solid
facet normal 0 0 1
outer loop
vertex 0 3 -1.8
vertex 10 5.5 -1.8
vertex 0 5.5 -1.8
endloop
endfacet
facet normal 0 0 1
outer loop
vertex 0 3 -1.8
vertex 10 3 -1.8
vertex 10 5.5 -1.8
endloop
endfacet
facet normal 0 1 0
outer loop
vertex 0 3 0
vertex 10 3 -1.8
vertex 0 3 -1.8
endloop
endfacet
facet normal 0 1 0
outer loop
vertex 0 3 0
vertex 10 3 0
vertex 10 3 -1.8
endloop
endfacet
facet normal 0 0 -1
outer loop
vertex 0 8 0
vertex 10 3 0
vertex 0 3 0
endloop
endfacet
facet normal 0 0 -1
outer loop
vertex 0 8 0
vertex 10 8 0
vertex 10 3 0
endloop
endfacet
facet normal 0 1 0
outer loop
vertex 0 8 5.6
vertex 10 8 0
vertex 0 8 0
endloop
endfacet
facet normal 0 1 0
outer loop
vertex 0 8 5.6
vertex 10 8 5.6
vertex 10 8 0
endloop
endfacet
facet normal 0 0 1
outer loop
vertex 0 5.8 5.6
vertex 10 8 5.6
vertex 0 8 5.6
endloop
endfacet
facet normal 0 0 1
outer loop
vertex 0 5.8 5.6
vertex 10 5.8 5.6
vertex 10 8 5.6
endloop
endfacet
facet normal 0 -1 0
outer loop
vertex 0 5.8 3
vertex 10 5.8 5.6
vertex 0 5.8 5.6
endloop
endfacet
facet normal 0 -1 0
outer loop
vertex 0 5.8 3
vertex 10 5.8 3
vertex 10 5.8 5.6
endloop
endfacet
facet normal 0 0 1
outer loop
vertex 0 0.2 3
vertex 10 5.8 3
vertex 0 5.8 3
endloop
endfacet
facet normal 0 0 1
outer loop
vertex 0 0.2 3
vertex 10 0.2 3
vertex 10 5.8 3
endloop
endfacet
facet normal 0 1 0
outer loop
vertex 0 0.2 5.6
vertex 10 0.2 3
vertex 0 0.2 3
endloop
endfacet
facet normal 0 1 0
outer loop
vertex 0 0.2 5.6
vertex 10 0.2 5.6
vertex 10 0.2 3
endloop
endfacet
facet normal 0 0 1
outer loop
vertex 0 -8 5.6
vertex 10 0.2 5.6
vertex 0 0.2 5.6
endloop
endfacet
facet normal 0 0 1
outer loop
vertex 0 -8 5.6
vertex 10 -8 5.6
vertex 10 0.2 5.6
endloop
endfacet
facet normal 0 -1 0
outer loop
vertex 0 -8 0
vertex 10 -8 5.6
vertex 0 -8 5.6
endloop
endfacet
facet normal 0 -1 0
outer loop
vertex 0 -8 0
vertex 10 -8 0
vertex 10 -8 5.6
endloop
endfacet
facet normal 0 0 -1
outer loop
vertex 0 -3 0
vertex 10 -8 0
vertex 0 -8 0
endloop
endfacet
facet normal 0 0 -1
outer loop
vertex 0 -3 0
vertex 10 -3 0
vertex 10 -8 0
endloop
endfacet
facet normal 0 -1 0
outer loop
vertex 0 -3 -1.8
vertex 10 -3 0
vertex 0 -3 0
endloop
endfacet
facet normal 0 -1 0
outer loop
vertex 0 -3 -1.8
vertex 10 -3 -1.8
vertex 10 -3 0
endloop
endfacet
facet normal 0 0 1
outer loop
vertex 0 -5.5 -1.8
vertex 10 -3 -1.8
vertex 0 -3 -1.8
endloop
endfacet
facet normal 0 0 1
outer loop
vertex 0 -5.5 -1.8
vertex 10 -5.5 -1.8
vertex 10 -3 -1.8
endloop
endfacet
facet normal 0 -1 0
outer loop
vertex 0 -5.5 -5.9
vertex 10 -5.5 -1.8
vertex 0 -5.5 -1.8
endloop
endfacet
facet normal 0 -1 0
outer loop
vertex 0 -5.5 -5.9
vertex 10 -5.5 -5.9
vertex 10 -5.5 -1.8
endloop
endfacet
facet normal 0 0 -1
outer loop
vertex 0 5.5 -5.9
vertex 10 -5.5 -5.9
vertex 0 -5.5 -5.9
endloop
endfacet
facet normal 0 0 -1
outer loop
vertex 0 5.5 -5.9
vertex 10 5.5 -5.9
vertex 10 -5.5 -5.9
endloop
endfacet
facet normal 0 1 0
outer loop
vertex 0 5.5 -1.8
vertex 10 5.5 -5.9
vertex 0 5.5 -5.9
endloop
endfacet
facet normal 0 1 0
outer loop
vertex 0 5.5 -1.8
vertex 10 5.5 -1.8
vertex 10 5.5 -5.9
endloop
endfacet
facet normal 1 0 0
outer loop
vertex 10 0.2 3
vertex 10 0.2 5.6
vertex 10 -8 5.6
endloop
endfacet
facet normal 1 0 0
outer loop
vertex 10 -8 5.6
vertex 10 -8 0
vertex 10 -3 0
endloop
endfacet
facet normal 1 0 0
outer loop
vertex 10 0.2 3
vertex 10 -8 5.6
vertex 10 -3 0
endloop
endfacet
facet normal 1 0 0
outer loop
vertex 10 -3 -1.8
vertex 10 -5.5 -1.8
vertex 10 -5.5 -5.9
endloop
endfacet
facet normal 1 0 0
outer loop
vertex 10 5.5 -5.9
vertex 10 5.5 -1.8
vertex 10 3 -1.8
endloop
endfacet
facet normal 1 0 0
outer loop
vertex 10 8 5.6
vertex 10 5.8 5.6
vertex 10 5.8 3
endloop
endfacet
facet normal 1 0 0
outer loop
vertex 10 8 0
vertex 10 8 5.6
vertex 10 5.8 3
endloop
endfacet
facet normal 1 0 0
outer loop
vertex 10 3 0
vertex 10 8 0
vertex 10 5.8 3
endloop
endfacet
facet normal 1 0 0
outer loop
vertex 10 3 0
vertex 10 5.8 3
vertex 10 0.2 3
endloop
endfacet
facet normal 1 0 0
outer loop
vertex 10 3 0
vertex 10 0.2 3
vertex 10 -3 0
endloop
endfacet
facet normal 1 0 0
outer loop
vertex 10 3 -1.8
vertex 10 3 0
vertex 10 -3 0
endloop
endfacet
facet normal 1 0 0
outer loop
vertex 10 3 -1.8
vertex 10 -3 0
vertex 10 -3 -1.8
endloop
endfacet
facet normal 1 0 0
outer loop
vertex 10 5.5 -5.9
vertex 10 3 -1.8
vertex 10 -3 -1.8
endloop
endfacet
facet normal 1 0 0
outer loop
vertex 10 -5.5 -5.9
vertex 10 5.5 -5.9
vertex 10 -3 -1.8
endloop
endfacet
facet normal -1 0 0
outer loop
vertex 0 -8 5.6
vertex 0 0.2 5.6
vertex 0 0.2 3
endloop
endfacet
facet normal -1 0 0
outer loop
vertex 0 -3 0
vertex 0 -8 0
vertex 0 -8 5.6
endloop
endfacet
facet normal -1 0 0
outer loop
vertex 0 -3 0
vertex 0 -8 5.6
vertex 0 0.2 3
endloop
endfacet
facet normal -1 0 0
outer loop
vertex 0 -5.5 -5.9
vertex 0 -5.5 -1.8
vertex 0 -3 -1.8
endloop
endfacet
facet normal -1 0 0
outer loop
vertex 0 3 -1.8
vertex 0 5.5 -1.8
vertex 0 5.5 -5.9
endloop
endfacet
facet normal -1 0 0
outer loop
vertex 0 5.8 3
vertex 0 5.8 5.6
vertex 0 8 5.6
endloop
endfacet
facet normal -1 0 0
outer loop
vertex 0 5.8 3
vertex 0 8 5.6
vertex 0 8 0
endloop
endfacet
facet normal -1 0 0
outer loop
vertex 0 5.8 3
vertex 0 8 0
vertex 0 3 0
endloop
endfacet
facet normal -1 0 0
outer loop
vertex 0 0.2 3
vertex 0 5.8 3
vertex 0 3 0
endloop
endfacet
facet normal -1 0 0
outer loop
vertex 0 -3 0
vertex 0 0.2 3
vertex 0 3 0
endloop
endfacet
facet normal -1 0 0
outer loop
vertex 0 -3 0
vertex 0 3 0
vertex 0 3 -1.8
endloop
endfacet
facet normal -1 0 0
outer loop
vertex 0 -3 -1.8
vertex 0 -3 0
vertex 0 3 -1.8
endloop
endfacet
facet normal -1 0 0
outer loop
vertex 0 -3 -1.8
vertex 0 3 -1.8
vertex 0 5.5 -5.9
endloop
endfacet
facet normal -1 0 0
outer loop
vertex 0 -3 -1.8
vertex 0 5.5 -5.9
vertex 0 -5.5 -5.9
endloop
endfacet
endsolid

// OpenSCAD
// 2020 -> Eurorack threaded-strip adapter
//
// Slides into the slot of a 2020 aluminum extrusion (end-loaded) and exposes
// a captive channel along its length for a Eurorack threaded strip (or a
// row of M2.5/M3 T-nuts sized to the same cross-section).
//
// Print orientation: stand the part on one end (cross-section facing up) for
// best dimensional accuracy on the slot and tab. Alternatively lay it on the
// back face -- the strip-channel lips are a ~1 mm overhang and bridge fine.
//
// Coordinates: X = along the extrusion, Y = across the extrusion face,
// Z = away from the extrusion face. Origin is on the extrusion's outer face
// centerline, at the near end.

// ---- parameters ----------------------------------------------------------

length              = 10;  // rail length. My printer can only print 100mm wide so
                              // 84HP = 128.5; 104HP = 158.75; etc.

// 2020 slot profile (generic European/Misumi-compatible)
slot_opening        = 6.2;    // gap between outer lips (+0.2 clearance)
slot_inner_width    = 11.6;   // width inside the slot, behind the lips
slot_lip_depth      = 1.8;    // Z thickness of the lip (depth of the stem)
slot_inner_depth    = 4.4;    // depth of the cavity behind the lips

// Tab geometry
use_t_tab           = true;   // true = T-profile, locks behind the lips
                              // false = simple rectangle (slides freely)
tab_clearance       = 0.3;    // shrink applied to T-head

// Main body sitting on the extrusion's outer face
body_width          = 16.0;   // Y extent of the shelf
body_thickness      = 3.0;    // Z thickness below the strip channel

// Eurorack threaded-strip channel (captive C-channel, opens toward +Z)
strip_width         = 5.6;    // Y width of the strip slot
strip_height        = 2.6;    // Z height of the strip slot
strip_lip           = 1.0;    // Y overhang on each side retaining the strip
strip_y_offset      = 3.0;    // Y center of the channel relative to body center

// Screw-access slot cut through the top face above the strip
access_slot_width   = 3.4;    // clearance for M3 (use 2.9 for M2.5)

$fn = 64;

// ---- derived -------------------------------------------------------------

tab_stem_w = slot_opening - 0.2;
tab_head_w = slot_inner_width - 2*tab_clearance;
tab_head_h = slot_inner_depth - tab_clearance;
total_h    = body_thickness + strip_height;  // shelf top above extrusion face

// ---- 2D cross-section (in the Y-Z plane) ---------------------------------

module tab_profile_2d() {
    // stem fits between the lips
    translate([-tab_stem_w/2, -slot_lip_depth])
        square([tab_stem_w, slot_lip_depth]);
    if (use_t_tab) {
        translate([-tab_head_w/2, -slot_lip_depth - tab_head_h])
            square([tab_head_w, tab_head_h]);
    }
}

module body_profile_2d() {
    difference() {
        // outer shelf
        translate([-body_width/2, 0])
            square([body_width, total_h]);

        // captive strip cavity: full width strip_width, but a narrower
        // mouth (strip_width - 2*strip_lip) opening to the top.
        translate([strip_y_offset - strip_width/2, body_thickness])
            square([strip_width, strip_height]);

        // access slot through the top face
        translate([strip_y_offset - access_slot_width/2,
                   body_thickness + strip_height - 0.01])
            square([access_slot_width, strip_lip + 0.02]);
    }
}

module rail_profile_2d() {
    // Reconstruct the captive channel by carving the cavity and the access
    // slot separately so the retaining lips remain attached to the shelf.
    difference() {
        union() {
            translate([-body_width/2, 0])
                square([body_width, total_h]);
            tab_profile_2d();
        }
        // strip cavity
        translate([strip_y_offset - strip_width/2, body_thickness])
            square([strip_width, strip_height]);
        // access slot
        translate([strip_y_offset - access_slot_width/2,
                   body_thickness + strip_height - 0.001])
            square([access_slot_width, strip_lip + 0.1]);
    }
}

// ---- 3D ------------------------------------------------------------------

module rail() {
    // Sweep the Y-Z cross-section along +X.
    rotate([90, 0, 90])
        linear_extrude(height = length, convexity = 4)
            rail_profile_2d();
}

rail();

// Uncomment to preview just the cross-section:
//rail_profile_2d();
